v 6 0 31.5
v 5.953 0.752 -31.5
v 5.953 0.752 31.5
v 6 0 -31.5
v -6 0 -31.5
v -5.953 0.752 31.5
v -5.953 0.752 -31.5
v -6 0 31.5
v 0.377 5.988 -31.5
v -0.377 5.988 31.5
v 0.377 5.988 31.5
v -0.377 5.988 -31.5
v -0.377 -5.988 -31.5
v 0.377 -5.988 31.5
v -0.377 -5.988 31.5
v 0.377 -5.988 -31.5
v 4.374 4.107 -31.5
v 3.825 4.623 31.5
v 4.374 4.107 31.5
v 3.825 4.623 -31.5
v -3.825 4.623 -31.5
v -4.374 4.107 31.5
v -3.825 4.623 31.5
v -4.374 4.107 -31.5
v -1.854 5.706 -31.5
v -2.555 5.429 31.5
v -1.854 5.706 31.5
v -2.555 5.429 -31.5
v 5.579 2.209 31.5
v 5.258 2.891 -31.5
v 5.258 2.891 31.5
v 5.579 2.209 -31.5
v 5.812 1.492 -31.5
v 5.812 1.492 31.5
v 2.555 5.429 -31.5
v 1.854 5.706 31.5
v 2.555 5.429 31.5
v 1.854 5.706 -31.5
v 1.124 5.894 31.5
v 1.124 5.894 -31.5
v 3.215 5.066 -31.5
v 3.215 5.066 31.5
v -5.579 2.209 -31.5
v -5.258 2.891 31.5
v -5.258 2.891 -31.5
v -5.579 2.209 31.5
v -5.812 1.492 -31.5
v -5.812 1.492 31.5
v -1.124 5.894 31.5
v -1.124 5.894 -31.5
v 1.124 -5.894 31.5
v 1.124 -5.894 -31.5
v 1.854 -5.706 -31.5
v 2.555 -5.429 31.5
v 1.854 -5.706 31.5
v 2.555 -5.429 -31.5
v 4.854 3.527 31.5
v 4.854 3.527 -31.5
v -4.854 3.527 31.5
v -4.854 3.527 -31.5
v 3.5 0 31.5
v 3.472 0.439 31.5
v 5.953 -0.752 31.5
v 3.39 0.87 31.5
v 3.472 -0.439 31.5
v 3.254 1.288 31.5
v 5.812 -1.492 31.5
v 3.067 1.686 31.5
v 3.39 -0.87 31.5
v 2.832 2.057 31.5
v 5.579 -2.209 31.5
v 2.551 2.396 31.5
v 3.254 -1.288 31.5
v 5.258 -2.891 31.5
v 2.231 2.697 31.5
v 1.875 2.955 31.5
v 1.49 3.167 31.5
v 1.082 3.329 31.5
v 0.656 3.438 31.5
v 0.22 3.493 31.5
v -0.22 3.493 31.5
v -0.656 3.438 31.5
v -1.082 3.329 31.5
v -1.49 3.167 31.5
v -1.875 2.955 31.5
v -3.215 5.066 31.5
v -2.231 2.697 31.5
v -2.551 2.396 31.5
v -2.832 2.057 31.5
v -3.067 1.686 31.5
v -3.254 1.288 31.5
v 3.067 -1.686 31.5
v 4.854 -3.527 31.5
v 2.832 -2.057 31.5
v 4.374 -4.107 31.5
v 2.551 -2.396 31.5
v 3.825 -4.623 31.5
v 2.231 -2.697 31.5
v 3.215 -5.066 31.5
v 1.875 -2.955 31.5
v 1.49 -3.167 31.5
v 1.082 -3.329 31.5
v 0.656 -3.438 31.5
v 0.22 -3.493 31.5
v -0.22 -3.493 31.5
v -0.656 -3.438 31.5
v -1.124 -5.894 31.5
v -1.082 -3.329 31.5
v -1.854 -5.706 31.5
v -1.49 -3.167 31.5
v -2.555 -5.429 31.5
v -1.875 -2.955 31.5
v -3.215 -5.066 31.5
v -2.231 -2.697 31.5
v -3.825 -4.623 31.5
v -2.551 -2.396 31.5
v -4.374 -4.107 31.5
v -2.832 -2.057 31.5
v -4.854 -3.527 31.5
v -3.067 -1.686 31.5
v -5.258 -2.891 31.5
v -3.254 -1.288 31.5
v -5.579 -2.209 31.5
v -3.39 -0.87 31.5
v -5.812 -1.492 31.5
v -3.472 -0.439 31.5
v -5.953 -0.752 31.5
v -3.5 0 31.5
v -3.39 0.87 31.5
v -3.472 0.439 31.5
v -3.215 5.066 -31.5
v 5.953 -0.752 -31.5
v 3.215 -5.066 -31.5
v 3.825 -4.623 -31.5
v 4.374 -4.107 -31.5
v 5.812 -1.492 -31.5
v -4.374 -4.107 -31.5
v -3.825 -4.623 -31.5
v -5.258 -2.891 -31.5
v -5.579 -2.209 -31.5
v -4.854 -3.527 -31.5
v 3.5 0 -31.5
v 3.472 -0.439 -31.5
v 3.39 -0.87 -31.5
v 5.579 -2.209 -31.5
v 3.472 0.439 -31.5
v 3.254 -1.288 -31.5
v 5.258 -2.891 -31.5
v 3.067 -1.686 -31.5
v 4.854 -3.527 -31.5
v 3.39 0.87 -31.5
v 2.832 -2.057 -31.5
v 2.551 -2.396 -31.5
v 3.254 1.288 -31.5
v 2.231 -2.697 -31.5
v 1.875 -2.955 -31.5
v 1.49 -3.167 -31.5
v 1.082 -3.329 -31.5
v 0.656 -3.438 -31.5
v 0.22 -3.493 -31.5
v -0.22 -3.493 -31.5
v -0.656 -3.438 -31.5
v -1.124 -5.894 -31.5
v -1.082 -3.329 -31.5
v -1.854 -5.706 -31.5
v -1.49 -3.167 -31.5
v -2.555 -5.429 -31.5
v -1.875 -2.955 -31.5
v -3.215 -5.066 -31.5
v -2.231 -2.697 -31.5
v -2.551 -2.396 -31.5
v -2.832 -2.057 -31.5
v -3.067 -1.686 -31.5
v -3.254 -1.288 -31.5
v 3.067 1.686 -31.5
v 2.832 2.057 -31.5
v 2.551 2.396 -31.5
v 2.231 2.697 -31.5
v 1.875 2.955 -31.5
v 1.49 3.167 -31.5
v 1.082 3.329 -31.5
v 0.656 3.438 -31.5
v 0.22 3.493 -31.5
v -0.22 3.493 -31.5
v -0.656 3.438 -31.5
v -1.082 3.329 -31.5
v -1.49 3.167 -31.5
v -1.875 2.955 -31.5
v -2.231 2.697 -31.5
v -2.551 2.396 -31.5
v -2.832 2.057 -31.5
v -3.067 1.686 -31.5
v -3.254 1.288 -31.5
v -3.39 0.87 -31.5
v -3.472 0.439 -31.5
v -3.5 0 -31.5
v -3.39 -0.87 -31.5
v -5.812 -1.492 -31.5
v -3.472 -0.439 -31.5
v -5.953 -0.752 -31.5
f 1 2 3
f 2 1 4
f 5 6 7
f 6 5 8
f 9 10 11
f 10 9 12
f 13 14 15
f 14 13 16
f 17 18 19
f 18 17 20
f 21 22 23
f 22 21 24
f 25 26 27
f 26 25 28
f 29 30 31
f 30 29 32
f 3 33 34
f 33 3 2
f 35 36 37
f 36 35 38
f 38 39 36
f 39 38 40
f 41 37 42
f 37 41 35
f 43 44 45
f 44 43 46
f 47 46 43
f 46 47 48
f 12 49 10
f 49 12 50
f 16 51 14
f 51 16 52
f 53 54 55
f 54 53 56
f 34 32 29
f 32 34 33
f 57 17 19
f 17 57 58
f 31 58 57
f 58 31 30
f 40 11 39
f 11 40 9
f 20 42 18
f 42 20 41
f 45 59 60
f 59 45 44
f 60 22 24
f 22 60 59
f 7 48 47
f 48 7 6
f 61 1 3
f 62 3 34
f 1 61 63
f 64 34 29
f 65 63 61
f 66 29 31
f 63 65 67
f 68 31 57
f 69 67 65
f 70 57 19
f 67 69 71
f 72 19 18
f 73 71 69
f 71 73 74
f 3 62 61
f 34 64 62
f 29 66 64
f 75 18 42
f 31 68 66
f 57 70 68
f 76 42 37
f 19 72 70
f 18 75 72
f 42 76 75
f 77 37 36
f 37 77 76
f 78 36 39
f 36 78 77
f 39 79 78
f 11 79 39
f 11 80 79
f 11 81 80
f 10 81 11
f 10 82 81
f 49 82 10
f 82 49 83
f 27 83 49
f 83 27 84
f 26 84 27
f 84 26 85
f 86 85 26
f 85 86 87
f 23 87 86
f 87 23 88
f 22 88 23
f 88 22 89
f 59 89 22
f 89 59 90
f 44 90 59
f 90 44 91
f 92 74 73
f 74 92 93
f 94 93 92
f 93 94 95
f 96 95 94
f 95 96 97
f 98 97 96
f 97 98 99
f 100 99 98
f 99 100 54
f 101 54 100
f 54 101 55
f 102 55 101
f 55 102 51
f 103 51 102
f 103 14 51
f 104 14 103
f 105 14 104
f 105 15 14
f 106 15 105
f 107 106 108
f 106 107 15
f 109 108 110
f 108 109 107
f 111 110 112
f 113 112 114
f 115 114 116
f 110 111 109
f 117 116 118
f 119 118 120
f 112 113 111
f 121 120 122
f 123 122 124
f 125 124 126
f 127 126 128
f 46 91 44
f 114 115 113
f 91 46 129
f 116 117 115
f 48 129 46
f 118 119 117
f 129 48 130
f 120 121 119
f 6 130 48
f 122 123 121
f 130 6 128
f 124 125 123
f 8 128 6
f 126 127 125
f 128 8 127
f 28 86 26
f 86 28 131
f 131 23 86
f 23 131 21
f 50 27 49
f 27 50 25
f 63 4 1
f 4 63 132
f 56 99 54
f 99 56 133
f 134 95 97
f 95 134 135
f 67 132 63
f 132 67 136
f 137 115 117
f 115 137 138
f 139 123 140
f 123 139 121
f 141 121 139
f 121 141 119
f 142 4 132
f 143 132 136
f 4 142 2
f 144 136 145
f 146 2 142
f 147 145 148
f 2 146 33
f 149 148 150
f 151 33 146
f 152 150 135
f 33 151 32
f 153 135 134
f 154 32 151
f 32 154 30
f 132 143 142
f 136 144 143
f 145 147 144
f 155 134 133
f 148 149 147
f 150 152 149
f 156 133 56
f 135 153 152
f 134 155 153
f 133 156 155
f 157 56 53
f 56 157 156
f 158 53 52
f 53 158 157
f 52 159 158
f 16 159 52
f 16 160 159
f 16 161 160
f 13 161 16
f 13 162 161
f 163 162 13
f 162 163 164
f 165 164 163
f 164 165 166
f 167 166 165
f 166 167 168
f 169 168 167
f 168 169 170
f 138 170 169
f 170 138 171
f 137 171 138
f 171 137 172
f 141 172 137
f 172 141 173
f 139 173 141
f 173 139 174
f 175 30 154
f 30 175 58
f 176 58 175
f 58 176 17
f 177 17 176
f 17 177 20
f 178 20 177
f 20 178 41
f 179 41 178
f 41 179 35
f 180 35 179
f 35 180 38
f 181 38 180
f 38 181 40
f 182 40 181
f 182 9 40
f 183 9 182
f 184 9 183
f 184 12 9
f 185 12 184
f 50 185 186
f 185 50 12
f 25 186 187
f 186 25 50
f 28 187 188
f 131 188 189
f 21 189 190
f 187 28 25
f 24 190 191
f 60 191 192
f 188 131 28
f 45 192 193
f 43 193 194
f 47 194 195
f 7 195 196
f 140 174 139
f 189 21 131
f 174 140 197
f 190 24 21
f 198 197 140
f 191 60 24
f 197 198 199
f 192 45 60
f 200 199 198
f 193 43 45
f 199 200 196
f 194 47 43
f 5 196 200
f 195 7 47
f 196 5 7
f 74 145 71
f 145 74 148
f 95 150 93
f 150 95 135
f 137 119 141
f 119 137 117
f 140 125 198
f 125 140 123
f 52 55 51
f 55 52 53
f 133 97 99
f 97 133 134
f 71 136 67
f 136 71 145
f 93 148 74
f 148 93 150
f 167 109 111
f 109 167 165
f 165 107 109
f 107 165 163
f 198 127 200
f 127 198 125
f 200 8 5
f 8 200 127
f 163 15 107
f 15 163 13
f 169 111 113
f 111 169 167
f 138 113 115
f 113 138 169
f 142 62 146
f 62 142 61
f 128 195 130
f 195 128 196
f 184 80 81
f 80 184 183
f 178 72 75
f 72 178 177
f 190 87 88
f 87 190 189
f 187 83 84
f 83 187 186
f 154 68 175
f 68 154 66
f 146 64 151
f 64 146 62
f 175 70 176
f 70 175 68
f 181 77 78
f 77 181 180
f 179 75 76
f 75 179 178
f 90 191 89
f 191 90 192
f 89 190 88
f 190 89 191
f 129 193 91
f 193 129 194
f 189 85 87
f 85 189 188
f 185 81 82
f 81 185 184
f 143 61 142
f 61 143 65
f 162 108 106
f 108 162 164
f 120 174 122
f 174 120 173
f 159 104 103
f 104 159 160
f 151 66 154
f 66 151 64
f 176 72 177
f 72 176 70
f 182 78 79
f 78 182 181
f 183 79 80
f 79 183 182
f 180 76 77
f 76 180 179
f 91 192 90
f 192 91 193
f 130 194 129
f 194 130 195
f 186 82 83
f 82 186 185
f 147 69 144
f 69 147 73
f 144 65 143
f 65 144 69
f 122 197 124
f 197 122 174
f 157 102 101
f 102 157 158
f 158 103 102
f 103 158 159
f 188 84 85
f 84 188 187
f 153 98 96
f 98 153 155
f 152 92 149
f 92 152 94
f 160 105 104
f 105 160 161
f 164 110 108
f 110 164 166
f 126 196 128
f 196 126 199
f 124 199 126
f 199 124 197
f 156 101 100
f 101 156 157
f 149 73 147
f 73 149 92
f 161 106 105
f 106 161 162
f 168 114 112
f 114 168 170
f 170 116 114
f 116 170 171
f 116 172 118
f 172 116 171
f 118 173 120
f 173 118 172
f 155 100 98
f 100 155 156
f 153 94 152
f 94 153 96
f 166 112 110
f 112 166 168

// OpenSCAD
$fn = 50;


difference() {
	union() {
		translate(v = [0, 0, -31.5000000000]) {
			cylinder(h = 63, r = 6.0000000000);
		}
	}
	union() {
		translate(v = [0, 0, -100.0000000000]) {
			cylinder(h = 200, r = 3.5000000000);
		}
	}
}
